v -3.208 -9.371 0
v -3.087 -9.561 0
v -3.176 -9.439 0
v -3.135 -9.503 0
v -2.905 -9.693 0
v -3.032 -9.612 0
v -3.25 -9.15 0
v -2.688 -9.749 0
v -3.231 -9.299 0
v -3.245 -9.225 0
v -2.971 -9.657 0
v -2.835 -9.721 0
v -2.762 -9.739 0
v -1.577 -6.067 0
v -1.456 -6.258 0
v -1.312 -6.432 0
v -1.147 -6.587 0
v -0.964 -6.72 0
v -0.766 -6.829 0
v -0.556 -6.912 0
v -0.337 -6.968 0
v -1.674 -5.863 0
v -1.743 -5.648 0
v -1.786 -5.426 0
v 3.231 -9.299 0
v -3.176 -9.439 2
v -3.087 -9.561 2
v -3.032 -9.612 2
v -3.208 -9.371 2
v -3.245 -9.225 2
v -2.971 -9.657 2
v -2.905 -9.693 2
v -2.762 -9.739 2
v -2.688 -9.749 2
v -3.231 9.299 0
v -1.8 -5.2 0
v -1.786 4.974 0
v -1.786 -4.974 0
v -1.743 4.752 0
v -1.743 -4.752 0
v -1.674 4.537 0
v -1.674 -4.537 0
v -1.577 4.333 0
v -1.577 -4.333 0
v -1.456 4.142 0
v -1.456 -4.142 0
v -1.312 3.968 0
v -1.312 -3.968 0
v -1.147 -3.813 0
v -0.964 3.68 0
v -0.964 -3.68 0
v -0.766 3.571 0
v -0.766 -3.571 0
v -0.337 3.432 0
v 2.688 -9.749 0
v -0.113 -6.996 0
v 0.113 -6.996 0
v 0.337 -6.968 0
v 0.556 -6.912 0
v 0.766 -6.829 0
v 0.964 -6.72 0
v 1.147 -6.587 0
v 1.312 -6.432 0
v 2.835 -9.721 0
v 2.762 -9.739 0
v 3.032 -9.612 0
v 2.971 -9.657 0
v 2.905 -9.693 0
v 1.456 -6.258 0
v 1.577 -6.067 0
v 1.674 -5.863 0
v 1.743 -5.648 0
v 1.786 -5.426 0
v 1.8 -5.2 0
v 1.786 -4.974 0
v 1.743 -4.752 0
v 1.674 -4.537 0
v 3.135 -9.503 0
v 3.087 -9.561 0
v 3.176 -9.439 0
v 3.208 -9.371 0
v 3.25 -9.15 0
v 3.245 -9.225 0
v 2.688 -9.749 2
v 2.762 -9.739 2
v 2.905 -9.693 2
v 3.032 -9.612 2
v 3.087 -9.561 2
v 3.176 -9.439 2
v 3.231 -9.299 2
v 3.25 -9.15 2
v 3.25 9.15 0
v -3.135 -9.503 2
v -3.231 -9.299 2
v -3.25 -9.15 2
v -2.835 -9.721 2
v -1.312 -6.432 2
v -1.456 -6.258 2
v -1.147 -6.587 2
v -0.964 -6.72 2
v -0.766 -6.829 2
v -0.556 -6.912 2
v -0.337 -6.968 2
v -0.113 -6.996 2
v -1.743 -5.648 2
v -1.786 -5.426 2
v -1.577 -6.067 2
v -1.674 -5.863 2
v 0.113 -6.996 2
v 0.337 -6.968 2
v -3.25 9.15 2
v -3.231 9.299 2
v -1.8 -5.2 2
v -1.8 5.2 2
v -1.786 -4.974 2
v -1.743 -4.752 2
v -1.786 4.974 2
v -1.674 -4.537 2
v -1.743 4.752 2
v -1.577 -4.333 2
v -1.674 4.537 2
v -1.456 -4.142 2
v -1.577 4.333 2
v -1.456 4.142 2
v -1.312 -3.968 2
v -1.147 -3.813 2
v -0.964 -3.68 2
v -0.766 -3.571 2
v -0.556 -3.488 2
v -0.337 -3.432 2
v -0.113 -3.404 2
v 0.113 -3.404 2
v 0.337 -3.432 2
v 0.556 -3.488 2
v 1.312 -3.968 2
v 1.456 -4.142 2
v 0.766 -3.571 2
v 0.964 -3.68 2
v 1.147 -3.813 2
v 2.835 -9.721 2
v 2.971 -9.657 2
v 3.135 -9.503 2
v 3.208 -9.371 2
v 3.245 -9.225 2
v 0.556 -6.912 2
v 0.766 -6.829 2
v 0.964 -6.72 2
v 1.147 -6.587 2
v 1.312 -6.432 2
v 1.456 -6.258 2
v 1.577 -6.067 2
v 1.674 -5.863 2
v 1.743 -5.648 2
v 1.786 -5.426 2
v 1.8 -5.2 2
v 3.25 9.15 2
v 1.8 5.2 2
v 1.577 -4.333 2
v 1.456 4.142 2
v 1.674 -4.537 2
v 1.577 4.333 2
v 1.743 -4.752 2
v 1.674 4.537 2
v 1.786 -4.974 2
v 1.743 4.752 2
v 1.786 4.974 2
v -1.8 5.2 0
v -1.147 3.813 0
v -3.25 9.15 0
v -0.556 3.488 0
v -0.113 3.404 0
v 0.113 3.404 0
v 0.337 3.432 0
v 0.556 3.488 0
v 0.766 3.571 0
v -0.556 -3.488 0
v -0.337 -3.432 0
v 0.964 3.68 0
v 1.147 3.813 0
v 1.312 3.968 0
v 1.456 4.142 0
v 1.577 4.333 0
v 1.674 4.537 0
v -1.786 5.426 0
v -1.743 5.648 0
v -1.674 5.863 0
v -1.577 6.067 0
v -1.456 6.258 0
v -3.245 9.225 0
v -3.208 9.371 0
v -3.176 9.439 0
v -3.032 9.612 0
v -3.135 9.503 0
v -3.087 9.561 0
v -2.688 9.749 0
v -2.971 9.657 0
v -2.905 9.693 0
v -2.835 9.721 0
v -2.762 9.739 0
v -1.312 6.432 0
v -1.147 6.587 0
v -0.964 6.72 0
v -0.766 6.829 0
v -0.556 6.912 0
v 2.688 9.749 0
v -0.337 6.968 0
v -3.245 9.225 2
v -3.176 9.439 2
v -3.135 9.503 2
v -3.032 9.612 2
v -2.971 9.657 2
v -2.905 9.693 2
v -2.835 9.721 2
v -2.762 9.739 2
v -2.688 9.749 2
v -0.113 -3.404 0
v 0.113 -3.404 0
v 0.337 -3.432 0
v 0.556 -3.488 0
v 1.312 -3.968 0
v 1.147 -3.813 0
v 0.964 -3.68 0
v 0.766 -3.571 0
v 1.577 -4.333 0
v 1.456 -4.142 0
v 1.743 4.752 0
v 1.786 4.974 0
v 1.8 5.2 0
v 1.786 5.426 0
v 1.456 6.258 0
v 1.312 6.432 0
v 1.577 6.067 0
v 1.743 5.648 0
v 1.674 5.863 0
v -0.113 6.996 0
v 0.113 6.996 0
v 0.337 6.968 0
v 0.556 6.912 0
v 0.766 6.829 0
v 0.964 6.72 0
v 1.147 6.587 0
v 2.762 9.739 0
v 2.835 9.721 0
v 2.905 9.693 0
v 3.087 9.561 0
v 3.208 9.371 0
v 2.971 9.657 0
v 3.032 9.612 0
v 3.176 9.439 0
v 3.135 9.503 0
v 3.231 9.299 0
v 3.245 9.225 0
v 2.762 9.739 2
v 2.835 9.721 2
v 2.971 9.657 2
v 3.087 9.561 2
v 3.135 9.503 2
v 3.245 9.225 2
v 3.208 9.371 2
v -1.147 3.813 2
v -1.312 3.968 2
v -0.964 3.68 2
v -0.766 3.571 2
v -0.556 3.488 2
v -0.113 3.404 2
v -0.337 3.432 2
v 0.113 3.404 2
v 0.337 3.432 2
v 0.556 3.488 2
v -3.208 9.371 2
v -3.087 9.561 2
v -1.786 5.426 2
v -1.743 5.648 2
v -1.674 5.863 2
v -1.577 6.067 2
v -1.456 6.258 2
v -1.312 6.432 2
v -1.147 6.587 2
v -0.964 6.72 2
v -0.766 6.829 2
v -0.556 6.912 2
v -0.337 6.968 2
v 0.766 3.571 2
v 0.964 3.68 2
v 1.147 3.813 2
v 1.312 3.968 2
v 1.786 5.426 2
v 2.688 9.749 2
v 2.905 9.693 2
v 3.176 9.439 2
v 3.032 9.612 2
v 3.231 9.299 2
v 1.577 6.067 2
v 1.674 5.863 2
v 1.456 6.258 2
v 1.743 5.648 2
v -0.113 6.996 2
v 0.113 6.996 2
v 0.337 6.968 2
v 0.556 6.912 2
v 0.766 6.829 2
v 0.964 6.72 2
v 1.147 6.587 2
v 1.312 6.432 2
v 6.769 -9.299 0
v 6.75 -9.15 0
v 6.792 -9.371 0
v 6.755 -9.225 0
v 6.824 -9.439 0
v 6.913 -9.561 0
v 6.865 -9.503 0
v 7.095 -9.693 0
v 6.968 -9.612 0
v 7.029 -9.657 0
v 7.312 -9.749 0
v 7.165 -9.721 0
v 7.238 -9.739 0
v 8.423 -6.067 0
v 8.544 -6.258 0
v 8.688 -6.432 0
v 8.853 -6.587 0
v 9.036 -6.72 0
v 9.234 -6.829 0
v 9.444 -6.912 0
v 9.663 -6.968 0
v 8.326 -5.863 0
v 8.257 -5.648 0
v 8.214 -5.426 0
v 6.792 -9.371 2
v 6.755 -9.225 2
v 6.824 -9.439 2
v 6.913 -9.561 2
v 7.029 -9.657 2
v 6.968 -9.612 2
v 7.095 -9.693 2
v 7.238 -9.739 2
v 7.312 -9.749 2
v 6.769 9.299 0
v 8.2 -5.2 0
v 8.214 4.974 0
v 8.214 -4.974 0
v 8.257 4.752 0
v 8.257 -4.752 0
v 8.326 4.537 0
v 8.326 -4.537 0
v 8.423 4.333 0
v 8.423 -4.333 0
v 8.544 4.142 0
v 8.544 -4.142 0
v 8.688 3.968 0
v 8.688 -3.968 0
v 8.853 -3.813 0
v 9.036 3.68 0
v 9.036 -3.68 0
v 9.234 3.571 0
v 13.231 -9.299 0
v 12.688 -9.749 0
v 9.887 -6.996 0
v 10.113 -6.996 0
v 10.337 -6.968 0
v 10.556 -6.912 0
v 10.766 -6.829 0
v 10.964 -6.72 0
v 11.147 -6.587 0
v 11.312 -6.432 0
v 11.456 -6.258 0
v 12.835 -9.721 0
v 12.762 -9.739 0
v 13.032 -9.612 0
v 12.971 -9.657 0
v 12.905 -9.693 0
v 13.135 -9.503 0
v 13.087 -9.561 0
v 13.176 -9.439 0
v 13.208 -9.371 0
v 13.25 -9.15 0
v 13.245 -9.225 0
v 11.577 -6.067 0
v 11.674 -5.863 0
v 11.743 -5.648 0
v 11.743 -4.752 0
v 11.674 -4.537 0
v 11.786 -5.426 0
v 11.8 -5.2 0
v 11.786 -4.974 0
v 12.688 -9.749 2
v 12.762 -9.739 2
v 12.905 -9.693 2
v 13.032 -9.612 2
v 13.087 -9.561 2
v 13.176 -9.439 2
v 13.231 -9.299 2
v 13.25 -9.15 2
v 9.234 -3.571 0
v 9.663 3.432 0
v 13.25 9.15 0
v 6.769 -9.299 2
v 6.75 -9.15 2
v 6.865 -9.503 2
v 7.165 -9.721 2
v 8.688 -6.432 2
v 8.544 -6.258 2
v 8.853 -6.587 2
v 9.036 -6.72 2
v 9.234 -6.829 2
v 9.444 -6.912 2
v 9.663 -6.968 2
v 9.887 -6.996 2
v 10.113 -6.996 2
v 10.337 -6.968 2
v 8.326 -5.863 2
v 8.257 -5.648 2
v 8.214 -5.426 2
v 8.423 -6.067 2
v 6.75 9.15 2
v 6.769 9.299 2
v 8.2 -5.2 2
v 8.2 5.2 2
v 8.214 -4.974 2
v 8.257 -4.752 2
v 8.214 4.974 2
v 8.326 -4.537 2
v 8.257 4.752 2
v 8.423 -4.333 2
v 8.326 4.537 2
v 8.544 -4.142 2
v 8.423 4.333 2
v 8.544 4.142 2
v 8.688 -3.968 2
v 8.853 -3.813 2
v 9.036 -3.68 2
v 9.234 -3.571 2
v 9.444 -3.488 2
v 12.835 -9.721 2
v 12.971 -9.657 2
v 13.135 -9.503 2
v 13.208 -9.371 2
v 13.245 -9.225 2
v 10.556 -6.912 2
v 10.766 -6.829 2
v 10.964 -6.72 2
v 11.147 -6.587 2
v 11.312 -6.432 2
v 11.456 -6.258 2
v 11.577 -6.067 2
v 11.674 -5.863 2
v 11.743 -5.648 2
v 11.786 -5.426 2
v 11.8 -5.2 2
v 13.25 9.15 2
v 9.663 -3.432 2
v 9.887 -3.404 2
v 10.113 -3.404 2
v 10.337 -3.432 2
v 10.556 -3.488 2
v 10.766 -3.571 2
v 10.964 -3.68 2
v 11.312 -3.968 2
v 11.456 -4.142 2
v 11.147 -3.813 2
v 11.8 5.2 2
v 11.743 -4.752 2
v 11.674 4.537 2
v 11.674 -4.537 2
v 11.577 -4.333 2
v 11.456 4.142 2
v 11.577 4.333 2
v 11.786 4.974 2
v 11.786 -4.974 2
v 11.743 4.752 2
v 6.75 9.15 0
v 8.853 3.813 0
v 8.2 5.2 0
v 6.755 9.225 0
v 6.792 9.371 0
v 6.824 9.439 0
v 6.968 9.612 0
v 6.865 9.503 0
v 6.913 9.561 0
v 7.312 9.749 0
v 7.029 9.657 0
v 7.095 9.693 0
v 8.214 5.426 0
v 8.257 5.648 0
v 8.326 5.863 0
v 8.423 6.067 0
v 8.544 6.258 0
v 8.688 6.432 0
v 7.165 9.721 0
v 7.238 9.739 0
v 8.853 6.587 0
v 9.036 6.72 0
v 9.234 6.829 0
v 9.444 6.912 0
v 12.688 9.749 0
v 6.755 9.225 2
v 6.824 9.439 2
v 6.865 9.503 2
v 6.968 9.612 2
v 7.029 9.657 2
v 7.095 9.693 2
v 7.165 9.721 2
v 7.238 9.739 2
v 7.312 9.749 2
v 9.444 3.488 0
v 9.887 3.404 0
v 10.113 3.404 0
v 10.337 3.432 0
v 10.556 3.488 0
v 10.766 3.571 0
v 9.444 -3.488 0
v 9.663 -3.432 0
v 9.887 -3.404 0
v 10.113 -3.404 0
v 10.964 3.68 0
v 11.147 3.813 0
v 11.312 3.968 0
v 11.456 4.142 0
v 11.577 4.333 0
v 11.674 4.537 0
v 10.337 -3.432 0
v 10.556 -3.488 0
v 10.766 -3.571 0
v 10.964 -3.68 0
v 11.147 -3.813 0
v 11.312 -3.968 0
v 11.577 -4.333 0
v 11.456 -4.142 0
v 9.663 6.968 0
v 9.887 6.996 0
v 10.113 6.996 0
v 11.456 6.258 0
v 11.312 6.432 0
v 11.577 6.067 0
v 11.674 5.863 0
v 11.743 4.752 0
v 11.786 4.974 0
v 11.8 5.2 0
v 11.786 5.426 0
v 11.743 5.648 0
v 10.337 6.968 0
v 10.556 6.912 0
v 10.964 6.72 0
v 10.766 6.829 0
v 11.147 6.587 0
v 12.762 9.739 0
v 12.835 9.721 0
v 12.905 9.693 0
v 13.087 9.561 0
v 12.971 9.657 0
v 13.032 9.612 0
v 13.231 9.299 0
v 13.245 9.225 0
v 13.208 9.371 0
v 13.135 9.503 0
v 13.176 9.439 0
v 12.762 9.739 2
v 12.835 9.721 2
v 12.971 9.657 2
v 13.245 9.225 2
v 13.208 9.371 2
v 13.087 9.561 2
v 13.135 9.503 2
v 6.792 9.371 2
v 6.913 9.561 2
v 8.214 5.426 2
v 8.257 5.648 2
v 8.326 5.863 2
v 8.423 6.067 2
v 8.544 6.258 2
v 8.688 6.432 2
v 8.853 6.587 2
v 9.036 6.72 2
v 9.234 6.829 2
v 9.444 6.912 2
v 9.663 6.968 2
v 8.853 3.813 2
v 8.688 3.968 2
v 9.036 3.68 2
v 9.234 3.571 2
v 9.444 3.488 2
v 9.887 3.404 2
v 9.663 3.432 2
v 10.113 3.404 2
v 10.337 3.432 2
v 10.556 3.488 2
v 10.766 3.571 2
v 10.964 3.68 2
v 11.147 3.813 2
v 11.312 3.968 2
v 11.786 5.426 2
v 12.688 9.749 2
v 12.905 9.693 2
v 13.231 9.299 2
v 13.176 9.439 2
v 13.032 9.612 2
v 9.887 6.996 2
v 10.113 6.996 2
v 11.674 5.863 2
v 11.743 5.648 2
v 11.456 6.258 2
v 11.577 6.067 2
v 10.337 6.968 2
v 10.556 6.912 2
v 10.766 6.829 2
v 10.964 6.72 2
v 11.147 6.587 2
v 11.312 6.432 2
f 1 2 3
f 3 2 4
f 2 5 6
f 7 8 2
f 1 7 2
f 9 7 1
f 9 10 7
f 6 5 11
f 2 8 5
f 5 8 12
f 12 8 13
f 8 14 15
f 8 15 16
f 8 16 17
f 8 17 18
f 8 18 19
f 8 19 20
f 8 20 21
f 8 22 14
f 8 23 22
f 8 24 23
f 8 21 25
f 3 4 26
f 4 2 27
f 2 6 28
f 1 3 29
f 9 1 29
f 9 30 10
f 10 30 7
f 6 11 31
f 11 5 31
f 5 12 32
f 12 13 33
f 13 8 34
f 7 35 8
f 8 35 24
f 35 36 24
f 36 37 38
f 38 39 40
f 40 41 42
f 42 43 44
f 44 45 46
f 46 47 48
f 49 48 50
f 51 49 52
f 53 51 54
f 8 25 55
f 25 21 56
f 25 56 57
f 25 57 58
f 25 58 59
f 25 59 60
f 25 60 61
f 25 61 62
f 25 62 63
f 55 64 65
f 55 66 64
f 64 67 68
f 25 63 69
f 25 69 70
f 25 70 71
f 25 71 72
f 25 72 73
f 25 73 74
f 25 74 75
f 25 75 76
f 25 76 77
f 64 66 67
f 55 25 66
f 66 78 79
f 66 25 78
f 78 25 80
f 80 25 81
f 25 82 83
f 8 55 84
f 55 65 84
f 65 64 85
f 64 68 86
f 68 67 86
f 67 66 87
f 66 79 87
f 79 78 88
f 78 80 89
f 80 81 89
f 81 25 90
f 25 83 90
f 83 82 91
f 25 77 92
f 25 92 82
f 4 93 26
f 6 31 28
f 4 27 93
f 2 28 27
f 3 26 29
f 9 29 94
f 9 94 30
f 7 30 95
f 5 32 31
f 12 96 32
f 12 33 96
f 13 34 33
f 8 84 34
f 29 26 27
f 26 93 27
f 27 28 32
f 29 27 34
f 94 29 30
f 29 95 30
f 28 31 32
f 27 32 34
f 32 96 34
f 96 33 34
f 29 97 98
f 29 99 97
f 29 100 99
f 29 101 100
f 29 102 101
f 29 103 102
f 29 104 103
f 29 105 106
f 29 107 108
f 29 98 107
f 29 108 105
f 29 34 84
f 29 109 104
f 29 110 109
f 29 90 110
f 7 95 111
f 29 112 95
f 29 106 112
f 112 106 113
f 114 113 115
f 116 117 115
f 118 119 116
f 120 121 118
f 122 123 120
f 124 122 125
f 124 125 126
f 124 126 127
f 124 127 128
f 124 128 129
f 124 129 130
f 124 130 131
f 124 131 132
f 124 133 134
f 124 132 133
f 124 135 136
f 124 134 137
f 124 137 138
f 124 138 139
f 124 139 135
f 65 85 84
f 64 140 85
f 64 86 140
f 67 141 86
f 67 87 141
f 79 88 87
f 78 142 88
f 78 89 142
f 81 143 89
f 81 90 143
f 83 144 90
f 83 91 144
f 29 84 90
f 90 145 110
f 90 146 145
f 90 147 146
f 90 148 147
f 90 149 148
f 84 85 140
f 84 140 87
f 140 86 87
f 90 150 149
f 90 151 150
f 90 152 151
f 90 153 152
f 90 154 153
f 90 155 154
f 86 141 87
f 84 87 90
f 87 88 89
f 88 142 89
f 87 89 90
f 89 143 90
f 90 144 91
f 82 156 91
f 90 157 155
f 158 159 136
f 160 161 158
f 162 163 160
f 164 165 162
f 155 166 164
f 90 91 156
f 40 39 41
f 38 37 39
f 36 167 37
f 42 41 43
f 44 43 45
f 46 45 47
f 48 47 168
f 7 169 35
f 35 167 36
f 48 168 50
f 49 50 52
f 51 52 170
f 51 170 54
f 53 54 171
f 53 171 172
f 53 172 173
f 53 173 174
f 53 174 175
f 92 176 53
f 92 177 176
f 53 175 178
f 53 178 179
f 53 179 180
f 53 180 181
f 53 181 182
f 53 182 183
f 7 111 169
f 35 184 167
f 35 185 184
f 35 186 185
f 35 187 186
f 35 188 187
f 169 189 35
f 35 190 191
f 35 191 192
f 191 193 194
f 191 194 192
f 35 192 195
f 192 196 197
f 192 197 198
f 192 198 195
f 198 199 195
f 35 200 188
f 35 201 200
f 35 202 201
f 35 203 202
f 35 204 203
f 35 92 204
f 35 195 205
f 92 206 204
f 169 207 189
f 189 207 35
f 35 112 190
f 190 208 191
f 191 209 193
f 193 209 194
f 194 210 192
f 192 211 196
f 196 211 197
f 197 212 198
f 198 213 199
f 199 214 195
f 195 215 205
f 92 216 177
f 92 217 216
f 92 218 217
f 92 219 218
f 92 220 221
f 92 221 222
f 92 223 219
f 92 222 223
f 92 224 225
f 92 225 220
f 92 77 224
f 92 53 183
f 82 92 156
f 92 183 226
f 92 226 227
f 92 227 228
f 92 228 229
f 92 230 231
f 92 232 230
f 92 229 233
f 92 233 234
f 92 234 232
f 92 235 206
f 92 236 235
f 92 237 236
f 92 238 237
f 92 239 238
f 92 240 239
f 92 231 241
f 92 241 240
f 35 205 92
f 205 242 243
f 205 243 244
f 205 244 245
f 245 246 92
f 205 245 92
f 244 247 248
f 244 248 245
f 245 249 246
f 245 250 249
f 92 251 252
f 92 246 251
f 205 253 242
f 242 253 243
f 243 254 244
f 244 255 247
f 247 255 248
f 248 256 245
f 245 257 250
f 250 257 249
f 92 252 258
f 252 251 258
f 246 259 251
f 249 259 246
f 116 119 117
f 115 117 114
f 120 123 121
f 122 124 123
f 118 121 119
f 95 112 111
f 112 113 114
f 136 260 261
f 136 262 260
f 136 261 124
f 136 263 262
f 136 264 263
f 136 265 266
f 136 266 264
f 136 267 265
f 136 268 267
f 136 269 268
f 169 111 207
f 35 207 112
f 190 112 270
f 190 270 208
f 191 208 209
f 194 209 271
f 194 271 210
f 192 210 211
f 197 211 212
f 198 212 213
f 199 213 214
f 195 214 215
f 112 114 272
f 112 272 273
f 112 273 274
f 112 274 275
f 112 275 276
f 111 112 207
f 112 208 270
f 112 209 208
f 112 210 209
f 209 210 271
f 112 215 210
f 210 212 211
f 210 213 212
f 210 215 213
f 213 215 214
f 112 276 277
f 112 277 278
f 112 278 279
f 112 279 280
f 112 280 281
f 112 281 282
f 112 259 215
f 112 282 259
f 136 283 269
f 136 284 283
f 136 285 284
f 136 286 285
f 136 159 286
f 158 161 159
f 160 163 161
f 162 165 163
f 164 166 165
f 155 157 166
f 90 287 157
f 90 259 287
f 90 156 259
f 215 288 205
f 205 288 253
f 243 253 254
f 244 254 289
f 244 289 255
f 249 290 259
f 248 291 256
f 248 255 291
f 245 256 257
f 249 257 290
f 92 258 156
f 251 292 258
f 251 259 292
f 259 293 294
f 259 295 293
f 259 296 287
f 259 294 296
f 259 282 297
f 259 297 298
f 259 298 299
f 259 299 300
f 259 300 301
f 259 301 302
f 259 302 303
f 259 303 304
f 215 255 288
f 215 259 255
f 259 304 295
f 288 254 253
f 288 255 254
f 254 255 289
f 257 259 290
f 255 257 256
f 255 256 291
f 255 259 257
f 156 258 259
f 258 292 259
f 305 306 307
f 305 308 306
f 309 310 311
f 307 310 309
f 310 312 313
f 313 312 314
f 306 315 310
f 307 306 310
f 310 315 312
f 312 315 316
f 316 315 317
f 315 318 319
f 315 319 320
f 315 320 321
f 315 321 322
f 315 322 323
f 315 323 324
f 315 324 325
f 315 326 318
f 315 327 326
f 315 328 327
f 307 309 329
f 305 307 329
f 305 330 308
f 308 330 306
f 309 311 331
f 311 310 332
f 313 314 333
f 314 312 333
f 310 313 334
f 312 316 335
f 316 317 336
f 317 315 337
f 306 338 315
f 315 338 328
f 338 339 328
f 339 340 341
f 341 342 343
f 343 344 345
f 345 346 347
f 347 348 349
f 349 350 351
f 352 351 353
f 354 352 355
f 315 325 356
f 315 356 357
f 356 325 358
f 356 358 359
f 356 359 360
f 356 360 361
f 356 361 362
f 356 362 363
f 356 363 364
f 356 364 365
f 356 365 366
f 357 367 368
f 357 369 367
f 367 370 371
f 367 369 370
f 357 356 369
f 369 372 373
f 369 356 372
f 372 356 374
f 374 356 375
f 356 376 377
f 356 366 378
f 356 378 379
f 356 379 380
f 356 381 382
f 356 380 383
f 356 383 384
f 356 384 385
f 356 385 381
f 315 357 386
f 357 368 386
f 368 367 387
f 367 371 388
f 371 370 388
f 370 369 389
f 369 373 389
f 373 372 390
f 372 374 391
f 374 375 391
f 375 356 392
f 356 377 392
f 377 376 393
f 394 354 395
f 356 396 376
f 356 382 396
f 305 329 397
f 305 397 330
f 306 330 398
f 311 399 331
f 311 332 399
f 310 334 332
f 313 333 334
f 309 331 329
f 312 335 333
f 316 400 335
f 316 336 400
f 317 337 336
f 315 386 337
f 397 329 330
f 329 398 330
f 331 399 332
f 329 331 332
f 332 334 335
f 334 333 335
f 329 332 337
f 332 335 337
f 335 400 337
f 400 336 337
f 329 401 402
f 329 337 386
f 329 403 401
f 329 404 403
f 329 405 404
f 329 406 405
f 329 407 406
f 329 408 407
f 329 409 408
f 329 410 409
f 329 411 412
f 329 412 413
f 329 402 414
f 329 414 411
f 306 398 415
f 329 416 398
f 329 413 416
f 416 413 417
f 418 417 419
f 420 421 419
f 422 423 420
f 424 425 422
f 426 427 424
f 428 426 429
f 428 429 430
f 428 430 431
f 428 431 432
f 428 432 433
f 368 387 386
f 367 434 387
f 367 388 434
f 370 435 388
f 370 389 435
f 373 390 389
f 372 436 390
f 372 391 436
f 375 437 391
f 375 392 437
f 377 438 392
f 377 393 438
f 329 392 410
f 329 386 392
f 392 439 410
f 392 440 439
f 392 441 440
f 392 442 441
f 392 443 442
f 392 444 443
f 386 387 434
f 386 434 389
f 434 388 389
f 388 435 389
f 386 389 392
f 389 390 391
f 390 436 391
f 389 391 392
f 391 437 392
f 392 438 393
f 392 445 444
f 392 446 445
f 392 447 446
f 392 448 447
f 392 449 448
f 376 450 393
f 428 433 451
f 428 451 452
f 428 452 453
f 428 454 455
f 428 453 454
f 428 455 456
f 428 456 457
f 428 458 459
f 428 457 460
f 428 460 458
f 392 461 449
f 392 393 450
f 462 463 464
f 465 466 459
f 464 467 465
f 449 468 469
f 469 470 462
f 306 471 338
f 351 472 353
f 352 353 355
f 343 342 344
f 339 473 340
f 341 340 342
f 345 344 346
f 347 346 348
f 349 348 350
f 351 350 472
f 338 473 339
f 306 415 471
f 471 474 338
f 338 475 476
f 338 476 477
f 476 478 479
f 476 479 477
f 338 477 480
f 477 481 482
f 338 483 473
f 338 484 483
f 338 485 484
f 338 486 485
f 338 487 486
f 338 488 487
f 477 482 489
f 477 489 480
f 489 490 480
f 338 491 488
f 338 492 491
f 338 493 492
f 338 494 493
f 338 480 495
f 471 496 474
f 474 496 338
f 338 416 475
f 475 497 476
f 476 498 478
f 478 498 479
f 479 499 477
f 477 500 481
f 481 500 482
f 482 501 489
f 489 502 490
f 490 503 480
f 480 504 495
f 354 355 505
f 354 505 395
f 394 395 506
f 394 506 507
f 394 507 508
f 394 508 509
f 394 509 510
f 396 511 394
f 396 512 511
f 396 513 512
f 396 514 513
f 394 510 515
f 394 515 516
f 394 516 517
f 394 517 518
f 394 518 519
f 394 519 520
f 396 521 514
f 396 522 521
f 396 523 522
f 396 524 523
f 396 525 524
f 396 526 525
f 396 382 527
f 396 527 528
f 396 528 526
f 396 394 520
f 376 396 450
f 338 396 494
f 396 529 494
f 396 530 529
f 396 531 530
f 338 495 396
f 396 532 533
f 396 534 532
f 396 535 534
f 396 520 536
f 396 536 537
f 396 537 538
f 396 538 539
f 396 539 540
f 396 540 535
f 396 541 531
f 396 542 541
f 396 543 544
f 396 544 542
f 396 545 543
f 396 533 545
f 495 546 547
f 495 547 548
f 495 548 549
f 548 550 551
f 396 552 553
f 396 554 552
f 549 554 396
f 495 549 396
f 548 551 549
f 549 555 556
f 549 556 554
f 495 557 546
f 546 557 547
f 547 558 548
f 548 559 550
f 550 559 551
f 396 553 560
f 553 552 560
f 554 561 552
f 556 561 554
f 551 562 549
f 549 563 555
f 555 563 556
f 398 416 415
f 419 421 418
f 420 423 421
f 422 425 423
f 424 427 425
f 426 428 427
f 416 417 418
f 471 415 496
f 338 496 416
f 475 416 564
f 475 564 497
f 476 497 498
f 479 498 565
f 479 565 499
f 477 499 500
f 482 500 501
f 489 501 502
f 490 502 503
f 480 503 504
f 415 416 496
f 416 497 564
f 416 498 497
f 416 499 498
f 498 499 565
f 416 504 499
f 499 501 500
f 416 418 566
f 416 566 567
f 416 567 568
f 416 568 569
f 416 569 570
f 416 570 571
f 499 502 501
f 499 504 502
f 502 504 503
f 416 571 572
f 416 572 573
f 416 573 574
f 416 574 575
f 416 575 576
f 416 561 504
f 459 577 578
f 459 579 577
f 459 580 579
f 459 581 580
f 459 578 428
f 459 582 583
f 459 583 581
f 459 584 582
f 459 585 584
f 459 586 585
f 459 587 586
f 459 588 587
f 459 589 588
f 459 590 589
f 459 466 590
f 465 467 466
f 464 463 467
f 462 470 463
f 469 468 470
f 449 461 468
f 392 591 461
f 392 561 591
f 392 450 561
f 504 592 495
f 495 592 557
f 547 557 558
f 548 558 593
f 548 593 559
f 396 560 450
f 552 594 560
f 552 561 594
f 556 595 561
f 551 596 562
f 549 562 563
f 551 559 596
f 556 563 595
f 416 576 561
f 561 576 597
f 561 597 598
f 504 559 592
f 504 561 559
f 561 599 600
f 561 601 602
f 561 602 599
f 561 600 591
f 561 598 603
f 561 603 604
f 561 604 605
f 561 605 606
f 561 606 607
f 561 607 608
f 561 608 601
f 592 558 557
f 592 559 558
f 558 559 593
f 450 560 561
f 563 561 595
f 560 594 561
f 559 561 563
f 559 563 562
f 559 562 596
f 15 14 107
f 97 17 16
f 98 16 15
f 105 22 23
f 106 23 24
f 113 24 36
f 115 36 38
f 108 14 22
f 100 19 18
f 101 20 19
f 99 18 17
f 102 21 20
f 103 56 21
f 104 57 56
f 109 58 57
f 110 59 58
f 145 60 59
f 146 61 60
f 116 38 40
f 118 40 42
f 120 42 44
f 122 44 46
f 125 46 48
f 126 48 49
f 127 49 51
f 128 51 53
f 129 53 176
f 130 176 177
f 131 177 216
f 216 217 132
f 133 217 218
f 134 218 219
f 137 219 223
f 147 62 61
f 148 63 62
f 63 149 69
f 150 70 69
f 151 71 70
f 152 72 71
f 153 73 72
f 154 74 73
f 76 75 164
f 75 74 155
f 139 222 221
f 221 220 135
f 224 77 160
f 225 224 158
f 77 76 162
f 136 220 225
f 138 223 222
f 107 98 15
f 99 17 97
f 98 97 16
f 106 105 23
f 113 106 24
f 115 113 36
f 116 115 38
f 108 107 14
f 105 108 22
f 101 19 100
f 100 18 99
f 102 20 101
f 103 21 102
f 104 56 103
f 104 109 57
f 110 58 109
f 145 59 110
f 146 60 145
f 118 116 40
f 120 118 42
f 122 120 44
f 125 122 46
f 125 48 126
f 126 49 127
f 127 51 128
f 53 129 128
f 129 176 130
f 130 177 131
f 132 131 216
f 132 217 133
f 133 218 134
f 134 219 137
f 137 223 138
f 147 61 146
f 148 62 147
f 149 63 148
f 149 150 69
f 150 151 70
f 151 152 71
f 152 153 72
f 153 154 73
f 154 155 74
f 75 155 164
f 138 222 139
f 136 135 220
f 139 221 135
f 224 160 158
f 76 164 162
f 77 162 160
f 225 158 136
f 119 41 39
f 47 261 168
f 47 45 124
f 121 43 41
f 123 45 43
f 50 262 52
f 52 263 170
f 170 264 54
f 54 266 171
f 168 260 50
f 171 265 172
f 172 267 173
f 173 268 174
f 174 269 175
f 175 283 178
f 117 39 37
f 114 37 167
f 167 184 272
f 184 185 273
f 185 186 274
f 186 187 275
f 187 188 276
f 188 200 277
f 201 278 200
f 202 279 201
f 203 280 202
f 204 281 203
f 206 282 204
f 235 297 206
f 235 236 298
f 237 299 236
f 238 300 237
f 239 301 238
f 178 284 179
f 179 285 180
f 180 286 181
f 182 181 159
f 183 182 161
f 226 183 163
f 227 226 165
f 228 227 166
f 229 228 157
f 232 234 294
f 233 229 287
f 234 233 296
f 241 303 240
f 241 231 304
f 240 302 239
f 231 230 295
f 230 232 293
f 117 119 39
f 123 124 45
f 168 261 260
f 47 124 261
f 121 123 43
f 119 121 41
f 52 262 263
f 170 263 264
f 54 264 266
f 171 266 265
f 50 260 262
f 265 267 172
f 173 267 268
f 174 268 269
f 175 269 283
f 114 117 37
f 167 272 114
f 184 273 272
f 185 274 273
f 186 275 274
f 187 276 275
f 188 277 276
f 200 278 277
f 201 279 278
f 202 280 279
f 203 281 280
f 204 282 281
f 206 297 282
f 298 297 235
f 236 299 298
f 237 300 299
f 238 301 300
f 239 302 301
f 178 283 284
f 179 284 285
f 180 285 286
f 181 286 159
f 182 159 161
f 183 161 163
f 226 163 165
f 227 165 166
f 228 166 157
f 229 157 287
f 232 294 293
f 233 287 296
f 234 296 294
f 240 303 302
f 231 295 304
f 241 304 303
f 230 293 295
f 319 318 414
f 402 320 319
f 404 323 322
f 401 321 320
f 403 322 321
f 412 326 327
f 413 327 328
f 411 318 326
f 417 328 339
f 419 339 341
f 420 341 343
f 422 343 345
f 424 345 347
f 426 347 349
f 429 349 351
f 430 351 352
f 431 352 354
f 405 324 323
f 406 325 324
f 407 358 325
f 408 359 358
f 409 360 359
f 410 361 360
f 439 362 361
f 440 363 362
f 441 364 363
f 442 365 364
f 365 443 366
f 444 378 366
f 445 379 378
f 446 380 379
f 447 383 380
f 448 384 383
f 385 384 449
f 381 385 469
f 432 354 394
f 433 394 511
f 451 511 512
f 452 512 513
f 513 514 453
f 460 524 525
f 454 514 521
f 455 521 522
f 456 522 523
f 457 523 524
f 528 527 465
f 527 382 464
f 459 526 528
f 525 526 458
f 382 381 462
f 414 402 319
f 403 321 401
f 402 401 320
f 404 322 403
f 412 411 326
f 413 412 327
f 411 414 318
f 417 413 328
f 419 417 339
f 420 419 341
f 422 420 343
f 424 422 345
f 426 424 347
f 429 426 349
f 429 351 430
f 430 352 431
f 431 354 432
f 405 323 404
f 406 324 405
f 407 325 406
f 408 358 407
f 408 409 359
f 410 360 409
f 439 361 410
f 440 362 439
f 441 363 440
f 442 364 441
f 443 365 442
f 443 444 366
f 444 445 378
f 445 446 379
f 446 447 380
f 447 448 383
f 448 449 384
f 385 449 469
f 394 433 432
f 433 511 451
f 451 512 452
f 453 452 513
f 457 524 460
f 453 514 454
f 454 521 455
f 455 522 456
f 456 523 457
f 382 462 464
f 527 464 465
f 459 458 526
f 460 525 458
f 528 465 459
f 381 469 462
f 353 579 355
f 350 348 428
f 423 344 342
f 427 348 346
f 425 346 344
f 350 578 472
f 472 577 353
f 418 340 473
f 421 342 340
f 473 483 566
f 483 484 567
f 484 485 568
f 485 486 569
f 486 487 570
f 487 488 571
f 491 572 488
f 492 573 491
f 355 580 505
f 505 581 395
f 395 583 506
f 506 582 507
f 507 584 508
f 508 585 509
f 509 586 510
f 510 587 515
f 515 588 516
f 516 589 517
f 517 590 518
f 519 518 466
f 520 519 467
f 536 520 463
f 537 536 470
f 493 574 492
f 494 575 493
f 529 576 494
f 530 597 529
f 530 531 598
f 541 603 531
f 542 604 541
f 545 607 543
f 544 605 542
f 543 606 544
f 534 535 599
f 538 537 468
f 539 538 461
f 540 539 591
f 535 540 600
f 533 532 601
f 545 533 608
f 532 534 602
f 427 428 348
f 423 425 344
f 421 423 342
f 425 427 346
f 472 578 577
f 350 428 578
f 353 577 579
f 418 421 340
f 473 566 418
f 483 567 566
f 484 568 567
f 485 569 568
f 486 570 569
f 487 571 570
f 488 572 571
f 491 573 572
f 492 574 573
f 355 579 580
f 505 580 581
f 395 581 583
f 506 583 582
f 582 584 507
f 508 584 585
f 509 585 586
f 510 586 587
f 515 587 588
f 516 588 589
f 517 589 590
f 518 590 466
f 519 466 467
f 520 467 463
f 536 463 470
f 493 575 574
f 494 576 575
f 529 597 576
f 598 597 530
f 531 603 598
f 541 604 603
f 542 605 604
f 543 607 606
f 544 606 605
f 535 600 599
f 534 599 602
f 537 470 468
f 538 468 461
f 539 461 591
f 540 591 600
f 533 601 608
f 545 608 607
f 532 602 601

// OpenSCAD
$fn = 50;

difference() {
	union() {
		translate(v = [34.5, 0, 2]) {
			rotate(a = [0, 0, 0]) {
				difference() {
					union() {
						translate(v = [-34.5, 0, -2]) {
							hull() {
								translate(v = [-2.65, 9.15, 0]) {
									cylinder(h = 2, r = 0.6);
								}
								translate(v = [2.65, 9.15, 0]) {
									cylinder(h = 2, r = 0.6);
								}
								translate(v = [-2.65, -9.15, 0]) {
									cylinder(h = 2, r = 0.6);
								}
								translate(v = [2.65, -9.15, 0]) {
									cylinder(h = 2, r = 0.6);
								}
							}
						}
					}
					union() {
						translate(v = [-34.5, -5.2, -3]) {
							cylinder(h = 4, r = 1.8);
						}
						translate(v = [-34.5, 5.2, -3]) {
							cylinder(h = 4, r = 1.8);
						}
					}
				}
			}
		}
		translate(v = [-4.5, 0, 2]) {
			rotate(a = [0, 0, 0]) {
				difference() {
					union() {
						translate(v = [14.5, 0, -2]) {
							hull() {
								translate(v = [-2.65, 9.15, 0]) {
									cylinder(h = 2, r = 0.6);
								}
								translate(v = [2.65, 9.15, 0]) {
									cylinder(h = 2, r = 0.6);
								}
								translate(v = [-2.65, -9.15, 0]) {
									cylinder(h = 2, r = 0.6);
								}
								translate(v = [2.65, -9.15, 0]) {
									cylinder(h = 2, r = 0.6);
								}
							}
						}
					}
					union() {
						translate(v = [14.5, -5.2, -3]) {
							cylinder(h = 4, r = 1.8);
						}
						translate(v = [14.5, 5.2, -3]) {
							cylinder(h = 4, r = 1.8);
						}
					}
				}
			}
		}
	}
	union();
}
